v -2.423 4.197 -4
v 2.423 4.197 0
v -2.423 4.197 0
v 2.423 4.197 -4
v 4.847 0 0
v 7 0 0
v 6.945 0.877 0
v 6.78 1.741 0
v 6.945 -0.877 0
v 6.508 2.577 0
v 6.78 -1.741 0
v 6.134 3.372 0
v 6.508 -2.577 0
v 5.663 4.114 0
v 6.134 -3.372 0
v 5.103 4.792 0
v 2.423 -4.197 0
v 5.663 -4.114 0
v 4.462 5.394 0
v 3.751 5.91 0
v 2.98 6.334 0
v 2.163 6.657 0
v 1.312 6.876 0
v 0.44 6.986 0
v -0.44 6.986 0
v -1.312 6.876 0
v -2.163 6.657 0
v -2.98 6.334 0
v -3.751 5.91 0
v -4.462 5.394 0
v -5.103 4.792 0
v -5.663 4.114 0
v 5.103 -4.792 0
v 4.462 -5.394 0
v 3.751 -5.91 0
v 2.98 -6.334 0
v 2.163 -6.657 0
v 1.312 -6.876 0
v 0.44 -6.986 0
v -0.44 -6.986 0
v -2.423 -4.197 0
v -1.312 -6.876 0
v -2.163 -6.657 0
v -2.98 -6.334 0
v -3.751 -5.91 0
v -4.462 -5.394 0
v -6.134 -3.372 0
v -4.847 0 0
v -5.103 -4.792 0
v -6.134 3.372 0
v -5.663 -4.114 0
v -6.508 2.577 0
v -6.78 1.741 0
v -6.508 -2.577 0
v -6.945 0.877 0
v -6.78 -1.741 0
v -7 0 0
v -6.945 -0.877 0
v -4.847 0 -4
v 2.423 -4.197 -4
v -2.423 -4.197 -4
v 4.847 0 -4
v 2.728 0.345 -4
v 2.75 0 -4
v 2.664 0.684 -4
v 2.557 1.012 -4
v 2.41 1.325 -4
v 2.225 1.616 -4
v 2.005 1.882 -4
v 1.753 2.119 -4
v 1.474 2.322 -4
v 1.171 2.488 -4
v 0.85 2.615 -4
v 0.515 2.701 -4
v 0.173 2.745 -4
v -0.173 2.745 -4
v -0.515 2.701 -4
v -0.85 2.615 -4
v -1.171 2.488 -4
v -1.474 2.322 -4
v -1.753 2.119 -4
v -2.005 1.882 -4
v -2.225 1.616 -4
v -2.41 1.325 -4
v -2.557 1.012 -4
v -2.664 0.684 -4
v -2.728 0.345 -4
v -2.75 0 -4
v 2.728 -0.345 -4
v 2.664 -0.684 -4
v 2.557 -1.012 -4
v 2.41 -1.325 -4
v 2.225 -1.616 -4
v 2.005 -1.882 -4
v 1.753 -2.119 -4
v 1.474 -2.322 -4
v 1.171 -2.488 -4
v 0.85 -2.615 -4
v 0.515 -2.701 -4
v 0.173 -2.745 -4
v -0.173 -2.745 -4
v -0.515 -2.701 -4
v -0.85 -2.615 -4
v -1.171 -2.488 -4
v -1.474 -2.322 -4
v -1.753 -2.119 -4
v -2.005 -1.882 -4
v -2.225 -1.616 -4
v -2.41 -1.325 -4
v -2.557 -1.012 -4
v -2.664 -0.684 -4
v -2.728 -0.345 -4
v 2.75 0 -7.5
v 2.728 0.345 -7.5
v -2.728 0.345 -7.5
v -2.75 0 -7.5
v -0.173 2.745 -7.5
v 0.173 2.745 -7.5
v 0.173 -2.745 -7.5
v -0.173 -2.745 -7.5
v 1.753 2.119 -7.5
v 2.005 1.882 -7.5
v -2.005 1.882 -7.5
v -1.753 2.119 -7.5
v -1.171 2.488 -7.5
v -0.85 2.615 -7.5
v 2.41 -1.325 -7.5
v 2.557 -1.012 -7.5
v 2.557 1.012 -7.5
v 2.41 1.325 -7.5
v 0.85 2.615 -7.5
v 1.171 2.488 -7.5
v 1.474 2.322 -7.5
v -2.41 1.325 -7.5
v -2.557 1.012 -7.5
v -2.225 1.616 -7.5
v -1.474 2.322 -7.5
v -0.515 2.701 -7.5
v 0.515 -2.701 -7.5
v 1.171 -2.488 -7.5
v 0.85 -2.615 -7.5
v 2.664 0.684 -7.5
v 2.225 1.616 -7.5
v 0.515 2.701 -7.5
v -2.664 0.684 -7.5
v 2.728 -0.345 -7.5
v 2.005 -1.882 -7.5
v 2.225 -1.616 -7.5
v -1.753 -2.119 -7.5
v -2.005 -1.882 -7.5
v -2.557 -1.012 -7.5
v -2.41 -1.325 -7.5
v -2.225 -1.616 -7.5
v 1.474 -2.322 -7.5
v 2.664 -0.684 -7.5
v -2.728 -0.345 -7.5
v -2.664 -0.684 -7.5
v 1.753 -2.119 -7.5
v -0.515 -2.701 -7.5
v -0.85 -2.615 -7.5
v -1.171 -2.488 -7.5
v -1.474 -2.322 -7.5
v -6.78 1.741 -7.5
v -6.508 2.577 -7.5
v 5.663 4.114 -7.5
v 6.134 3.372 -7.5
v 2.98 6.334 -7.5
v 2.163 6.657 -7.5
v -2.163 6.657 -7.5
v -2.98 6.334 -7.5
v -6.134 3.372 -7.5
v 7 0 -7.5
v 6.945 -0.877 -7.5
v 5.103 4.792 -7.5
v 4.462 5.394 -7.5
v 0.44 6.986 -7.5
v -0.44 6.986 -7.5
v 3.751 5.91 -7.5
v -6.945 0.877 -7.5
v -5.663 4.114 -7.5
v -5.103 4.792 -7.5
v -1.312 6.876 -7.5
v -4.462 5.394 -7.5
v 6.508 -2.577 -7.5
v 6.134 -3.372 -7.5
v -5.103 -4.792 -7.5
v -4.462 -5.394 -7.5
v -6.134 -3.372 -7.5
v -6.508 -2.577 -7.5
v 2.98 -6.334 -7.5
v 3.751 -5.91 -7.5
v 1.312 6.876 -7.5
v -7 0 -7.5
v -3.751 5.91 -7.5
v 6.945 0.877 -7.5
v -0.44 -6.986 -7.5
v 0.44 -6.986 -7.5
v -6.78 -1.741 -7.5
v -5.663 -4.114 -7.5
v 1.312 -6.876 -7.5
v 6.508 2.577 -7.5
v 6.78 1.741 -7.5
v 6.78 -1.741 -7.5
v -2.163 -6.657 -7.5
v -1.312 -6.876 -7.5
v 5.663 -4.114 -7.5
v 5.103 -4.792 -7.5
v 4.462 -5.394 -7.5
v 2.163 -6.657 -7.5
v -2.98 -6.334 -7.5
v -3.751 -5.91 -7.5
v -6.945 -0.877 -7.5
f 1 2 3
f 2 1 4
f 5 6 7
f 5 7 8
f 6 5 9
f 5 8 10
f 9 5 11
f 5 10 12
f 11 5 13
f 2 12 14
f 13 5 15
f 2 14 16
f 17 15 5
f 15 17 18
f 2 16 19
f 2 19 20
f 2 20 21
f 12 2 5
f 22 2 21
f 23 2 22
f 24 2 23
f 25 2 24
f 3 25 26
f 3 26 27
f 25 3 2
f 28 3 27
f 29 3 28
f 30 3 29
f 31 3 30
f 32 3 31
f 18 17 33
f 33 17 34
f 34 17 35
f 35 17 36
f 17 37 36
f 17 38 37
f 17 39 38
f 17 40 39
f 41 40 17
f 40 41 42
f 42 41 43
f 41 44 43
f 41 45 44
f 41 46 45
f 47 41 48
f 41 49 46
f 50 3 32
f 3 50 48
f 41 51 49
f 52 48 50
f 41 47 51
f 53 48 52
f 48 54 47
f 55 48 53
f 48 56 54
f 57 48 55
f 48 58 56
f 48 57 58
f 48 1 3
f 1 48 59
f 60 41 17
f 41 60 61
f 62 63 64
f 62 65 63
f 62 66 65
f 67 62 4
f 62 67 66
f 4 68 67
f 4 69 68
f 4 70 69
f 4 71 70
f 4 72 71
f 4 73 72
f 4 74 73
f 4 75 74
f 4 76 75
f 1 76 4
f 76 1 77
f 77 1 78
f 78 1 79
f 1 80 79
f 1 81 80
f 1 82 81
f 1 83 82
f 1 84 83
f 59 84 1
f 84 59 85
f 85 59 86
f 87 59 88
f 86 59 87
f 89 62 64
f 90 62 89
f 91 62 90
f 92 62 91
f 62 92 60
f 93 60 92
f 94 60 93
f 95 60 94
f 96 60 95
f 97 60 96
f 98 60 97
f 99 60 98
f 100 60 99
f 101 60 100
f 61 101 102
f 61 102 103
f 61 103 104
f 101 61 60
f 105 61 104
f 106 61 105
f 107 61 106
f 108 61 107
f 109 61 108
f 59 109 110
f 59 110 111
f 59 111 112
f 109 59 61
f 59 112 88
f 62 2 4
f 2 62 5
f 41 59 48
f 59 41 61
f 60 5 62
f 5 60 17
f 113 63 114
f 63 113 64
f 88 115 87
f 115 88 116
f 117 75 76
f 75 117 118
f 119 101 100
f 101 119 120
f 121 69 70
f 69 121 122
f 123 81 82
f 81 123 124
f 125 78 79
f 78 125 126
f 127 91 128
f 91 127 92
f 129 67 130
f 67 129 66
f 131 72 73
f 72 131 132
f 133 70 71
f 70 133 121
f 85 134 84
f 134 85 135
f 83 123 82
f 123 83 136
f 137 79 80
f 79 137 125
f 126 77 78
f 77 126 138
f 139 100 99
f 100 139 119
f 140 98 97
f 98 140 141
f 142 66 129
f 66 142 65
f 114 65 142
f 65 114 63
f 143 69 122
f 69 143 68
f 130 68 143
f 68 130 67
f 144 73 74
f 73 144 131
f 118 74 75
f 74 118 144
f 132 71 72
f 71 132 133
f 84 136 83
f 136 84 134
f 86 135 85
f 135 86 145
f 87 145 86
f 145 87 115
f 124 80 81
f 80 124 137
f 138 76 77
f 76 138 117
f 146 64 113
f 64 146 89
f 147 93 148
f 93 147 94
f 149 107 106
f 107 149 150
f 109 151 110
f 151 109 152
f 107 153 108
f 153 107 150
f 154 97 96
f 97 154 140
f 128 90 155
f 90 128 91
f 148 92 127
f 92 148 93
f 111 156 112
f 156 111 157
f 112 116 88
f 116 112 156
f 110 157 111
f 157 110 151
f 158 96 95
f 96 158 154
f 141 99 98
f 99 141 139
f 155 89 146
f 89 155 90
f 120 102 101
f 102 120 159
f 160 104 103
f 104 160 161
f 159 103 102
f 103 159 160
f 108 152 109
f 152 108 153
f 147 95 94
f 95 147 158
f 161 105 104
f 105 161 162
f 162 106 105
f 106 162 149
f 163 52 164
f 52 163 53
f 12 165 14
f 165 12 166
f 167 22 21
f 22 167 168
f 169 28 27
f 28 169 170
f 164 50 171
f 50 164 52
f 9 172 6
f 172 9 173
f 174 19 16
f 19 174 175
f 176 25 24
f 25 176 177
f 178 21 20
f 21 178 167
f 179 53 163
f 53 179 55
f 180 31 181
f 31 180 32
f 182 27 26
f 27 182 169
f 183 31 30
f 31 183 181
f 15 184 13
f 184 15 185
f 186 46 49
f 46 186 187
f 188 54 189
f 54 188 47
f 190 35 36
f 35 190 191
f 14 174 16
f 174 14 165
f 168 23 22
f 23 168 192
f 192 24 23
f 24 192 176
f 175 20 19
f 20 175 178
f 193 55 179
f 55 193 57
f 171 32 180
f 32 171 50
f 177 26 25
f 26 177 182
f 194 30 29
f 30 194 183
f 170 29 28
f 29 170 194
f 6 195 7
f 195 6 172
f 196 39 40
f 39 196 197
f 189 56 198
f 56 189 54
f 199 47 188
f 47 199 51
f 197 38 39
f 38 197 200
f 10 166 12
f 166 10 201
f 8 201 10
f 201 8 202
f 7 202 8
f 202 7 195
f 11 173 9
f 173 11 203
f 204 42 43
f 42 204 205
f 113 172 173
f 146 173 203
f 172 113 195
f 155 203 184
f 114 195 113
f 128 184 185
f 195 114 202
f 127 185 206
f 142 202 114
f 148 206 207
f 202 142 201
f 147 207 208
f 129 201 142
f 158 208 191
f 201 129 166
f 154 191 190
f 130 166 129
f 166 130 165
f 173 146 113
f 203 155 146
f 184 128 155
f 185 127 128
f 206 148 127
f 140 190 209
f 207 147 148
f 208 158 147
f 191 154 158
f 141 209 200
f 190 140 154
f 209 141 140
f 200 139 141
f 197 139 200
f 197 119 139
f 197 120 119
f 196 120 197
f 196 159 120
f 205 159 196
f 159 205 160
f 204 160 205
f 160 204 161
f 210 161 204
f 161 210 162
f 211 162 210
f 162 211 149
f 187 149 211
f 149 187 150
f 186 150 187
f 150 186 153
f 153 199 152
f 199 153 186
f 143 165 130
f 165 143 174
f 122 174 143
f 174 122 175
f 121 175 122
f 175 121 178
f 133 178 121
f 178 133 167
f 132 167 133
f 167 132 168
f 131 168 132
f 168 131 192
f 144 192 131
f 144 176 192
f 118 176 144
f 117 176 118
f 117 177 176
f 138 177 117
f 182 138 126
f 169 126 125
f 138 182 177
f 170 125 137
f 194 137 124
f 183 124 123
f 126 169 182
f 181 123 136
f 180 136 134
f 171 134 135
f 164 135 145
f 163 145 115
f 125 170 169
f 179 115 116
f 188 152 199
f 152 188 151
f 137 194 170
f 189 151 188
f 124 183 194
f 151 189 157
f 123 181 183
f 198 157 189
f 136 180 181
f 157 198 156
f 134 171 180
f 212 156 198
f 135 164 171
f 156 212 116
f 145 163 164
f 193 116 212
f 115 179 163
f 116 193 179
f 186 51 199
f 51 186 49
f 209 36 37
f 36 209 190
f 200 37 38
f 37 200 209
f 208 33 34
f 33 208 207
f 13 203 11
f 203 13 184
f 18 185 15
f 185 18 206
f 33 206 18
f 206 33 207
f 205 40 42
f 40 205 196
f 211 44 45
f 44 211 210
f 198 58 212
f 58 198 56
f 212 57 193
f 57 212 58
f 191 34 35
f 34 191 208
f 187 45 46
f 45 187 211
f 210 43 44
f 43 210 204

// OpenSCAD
$fn = 50;


difference() {
	union() {
		translate(v = [0, 0, -7.5000000000]) {
			cylinder(h = 7.5000000000, r = 7.0000000000);
		}
	}
	union() {
		translate(v = [0, 0, 0]) {
			rotate(a = [0, 0, 0]) {
				difference() {
					union() {
						translate(v = [0, 0, -4]) {
							linear_extrude(height = 4) {
								polygon(points = [[4.8468000000, 0.0000000000], [2.4234000000, 4.1974519271], [-2.4234000000, 4.1974519271], [-4.8468000000, 0.0000000000], [-2.4234000000, -4.1974519271], [2.4234000000, -4.1974519271]]);
							}
						}
					}
					union();
				}
			}
		}
		#translate(v = [0, 0, -100.0000000000]) {
			cylinder(h = 200, r = 2.7500000000);
		}
	}
}
